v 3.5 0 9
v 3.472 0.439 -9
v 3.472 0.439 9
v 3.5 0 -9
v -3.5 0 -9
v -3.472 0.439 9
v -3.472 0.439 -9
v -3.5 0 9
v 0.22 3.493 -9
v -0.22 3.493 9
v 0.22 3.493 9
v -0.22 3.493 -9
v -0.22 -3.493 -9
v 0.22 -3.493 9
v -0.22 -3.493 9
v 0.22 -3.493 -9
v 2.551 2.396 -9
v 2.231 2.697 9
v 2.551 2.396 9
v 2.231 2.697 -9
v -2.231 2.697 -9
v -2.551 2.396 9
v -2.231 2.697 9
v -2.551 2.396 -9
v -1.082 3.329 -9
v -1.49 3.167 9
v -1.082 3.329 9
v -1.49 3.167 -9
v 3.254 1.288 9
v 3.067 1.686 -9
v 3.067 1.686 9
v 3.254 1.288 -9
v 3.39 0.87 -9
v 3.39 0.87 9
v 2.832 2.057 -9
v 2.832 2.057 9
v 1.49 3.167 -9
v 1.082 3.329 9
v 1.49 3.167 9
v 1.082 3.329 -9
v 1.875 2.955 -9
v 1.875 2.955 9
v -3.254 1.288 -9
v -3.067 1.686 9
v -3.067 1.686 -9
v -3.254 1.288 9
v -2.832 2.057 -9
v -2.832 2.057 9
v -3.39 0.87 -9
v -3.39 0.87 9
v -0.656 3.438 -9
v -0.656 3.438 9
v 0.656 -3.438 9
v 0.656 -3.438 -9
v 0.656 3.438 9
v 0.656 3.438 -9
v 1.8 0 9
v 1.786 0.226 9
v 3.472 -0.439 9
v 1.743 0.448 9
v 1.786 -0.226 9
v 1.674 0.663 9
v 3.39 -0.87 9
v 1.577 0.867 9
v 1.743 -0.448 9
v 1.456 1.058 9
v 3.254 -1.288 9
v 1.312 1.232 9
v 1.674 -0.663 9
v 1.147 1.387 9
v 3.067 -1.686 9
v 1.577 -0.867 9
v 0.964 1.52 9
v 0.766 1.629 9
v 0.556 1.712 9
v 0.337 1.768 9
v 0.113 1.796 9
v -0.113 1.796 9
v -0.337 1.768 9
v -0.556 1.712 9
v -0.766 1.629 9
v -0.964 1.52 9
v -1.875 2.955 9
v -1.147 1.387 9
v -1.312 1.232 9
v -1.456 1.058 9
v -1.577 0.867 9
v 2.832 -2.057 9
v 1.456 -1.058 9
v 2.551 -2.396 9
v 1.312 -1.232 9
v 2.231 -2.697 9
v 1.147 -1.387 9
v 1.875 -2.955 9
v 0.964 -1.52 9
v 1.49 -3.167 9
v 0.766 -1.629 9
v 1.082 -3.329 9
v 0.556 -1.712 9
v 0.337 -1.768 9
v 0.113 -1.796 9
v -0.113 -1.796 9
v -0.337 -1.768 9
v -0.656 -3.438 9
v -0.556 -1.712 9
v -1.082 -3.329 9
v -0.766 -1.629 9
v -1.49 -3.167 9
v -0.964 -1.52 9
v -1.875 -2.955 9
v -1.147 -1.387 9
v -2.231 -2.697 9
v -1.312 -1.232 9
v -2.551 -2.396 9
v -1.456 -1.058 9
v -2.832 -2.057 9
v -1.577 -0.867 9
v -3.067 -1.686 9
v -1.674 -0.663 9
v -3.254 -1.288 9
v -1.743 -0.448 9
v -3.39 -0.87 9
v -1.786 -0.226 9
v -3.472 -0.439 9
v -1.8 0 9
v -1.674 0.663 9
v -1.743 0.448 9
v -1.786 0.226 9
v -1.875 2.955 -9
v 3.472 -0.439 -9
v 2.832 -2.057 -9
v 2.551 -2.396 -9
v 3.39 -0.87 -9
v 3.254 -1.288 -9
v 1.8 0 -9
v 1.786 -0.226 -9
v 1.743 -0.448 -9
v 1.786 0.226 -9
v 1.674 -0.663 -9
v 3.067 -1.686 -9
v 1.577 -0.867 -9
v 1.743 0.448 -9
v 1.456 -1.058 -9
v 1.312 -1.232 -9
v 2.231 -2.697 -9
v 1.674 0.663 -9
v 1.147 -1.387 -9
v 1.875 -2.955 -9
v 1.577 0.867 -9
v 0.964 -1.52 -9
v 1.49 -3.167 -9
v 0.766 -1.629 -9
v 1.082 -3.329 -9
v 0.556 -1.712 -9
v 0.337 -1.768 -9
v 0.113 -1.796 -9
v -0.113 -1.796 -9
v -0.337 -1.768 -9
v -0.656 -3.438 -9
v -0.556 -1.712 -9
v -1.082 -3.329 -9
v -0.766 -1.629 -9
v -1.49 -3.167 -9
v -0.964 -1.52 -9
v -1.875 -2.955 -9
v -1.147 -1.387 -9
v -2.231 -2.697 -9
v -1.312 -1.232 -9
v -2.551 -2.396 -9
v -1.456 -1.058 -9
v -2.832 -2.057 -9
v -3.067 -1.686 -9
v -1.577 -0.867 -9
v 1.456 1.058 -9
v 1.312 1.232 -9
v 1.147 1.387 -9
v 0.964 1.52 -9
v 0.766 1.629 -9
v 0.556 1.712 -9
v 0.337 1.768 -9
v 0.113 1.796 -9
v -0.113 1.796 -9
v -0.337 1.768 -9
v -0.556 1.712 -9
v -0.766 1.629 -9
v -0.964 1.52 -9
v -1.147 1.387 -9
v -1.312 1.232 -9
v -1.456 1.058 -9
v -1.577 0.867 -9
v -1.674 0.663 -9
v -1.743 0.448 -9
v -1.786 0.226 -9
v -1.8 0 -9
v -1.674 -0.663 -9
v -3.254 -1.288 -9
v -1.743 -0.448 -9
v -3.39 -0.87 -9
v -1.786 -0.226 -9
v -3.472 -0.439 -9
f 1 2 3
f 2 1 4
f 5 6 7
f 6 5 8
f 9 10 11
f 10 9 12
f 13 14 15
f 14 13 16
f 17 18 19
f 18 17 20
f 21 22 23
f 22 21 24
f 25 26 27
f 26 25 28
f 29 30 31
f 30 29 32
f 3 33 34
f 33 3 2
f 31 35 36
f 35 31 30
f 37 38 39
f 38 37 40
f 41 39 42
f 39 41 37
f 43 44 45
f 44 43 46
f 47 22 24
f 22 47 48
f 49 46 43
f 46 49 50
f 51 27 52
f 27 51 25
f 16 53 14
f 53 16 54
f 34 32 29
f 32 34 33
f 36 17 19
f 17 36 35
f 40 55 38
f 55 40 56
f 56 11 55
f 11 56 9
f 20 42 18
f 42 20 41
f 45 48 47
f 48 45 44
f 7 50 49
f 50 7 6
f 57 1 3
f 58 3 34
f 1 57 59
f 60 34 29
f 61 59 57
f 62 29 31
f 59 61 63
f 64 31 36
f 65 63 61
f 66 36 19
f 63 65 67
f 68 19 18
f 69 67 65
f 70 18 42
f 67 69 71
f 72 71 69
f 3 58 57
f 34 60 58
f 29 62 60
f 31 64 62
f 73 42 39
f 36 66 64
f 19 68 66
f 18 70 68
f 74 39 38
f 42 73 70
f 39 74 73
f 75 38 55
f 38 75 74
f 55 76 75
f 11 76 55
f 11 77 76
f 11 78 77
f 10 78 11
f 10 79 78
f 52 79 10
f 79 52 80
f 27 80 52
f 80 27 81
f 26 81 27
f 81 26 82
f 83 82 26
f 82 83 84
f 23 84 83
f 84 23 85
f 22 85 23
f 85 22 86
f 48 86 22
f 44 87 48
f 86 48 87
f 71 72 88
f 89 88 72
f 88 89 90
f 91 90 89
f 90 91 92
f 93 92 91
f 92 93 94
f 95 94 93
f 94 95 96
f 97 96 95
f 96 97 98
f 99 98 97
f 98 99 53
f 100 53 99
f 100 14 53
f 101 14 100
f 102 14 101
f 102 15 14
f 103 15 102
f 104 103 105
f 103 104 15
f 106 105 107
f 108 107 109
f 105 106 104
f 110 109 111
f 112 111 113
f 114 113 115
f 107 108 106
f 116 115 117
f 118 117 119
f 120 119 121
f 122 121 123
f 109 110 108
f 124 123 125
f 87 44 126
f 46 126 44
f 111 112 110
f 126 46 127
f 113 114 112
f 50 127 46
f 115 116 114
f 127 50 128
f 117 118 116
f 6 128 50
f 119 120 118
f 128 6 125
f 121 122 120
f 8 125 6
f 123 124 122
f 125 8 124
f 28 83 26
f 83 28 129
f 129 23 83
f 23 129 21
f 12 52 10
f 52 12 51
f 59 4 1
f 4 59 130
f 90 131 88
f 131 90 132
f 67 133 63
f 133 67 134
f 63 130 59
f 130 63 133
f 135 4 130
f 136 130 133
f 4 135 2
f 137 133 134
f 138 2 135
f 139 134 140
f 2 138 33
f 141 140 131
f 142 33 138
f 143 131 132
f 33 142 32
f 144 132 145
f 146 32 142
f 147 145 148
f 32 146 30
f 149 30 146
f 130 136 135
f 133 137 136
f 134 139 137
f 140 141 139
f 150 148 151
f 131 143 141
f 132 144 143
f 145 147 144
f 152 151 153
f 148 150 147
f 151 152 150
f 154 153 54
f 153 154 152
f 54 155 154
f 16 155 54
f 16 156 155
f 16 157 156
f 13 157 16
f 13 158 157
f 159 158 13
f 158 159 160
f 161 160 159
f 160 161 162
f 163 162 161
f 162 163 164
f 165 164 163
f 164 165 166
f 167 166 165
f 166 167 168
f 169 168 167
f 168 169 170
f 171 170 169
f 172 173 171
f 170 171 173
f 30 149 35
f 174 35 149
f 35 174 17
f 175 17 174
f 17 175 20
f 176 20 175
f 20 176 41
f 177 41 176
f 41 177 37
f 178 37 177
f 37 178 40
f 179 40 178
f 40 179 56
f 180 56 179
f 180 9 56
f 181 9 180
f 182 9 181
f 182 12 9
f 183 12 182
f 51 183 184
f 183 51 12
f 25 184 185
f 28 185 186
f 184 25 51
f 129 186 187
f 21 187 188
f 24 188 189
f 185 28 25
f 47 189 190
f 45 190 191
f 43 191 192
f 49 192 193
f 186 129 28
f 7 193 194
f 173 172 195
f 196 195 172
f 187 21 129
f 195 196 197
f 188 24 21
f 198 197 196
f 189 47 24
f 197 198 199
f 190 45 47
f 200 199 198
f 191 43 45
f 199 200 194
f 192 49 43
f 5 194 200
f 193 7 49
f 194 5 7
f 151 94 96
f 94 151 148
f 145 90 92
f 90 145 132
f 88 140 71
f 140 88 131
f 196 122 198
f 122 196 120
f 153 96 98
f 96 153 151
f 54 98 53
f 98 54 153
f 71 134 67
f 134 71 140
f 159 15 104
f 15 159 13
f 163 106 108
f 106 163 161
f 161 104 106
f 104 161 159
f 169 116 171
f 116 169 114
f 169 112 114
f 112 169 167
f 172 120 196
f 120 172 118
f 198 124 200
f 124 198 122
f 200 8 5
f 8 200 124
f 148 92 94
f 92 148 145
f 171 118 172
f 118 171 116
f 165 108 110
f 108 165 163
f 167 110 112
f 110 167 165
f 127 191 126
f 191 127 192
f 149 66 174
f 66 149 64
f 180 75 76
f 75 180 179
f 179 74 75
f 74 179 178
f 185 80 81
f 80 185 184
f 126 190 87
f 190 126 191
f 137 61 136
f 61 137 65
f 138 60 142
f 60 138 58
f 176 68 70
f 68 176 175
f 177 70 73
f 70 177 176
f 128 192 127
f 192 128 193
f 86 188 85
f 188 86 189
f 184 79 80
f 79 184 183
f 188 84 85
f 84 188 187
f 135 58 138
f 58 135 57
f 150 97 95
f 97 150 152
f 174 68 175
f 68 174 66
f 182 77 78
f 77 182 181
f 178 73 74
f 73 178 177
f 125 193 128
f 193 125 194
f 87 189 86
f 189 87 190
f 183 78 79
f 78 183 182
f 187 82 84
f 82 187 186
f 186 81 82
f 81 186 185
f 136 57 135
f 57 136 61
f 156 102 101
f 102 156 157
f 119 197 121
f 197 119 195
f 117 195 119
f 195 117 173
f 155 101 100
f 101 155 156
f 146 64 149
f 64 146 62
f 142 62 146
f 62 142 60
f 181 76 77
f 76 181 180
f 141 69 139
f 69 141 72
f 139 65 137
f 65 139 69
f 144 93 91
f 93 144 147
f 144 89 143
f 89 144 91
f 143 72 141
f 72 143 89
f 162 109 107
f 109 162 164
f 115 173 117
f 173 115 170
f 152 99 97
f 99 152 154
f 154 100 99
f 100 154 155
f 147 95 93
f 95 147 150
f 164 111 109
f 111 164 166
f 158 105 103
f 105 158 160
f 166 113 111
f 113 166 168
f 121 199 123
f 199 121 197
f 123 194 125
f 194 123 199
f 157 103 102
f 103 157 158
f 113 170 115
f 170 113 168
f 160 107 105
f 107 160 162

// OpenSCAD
$fn = 50;


difference() {
	union() {
		translate(v = [0, 0, -9.0000000000]) {
			cylinder(h = 18, r = 3.5000000000);
		}
	}
	union() {
		translate(v = [0, 0, -100.0000000000]) {
			cylinder(h = 200, r = 1.8000000000);
		}
	}
}
